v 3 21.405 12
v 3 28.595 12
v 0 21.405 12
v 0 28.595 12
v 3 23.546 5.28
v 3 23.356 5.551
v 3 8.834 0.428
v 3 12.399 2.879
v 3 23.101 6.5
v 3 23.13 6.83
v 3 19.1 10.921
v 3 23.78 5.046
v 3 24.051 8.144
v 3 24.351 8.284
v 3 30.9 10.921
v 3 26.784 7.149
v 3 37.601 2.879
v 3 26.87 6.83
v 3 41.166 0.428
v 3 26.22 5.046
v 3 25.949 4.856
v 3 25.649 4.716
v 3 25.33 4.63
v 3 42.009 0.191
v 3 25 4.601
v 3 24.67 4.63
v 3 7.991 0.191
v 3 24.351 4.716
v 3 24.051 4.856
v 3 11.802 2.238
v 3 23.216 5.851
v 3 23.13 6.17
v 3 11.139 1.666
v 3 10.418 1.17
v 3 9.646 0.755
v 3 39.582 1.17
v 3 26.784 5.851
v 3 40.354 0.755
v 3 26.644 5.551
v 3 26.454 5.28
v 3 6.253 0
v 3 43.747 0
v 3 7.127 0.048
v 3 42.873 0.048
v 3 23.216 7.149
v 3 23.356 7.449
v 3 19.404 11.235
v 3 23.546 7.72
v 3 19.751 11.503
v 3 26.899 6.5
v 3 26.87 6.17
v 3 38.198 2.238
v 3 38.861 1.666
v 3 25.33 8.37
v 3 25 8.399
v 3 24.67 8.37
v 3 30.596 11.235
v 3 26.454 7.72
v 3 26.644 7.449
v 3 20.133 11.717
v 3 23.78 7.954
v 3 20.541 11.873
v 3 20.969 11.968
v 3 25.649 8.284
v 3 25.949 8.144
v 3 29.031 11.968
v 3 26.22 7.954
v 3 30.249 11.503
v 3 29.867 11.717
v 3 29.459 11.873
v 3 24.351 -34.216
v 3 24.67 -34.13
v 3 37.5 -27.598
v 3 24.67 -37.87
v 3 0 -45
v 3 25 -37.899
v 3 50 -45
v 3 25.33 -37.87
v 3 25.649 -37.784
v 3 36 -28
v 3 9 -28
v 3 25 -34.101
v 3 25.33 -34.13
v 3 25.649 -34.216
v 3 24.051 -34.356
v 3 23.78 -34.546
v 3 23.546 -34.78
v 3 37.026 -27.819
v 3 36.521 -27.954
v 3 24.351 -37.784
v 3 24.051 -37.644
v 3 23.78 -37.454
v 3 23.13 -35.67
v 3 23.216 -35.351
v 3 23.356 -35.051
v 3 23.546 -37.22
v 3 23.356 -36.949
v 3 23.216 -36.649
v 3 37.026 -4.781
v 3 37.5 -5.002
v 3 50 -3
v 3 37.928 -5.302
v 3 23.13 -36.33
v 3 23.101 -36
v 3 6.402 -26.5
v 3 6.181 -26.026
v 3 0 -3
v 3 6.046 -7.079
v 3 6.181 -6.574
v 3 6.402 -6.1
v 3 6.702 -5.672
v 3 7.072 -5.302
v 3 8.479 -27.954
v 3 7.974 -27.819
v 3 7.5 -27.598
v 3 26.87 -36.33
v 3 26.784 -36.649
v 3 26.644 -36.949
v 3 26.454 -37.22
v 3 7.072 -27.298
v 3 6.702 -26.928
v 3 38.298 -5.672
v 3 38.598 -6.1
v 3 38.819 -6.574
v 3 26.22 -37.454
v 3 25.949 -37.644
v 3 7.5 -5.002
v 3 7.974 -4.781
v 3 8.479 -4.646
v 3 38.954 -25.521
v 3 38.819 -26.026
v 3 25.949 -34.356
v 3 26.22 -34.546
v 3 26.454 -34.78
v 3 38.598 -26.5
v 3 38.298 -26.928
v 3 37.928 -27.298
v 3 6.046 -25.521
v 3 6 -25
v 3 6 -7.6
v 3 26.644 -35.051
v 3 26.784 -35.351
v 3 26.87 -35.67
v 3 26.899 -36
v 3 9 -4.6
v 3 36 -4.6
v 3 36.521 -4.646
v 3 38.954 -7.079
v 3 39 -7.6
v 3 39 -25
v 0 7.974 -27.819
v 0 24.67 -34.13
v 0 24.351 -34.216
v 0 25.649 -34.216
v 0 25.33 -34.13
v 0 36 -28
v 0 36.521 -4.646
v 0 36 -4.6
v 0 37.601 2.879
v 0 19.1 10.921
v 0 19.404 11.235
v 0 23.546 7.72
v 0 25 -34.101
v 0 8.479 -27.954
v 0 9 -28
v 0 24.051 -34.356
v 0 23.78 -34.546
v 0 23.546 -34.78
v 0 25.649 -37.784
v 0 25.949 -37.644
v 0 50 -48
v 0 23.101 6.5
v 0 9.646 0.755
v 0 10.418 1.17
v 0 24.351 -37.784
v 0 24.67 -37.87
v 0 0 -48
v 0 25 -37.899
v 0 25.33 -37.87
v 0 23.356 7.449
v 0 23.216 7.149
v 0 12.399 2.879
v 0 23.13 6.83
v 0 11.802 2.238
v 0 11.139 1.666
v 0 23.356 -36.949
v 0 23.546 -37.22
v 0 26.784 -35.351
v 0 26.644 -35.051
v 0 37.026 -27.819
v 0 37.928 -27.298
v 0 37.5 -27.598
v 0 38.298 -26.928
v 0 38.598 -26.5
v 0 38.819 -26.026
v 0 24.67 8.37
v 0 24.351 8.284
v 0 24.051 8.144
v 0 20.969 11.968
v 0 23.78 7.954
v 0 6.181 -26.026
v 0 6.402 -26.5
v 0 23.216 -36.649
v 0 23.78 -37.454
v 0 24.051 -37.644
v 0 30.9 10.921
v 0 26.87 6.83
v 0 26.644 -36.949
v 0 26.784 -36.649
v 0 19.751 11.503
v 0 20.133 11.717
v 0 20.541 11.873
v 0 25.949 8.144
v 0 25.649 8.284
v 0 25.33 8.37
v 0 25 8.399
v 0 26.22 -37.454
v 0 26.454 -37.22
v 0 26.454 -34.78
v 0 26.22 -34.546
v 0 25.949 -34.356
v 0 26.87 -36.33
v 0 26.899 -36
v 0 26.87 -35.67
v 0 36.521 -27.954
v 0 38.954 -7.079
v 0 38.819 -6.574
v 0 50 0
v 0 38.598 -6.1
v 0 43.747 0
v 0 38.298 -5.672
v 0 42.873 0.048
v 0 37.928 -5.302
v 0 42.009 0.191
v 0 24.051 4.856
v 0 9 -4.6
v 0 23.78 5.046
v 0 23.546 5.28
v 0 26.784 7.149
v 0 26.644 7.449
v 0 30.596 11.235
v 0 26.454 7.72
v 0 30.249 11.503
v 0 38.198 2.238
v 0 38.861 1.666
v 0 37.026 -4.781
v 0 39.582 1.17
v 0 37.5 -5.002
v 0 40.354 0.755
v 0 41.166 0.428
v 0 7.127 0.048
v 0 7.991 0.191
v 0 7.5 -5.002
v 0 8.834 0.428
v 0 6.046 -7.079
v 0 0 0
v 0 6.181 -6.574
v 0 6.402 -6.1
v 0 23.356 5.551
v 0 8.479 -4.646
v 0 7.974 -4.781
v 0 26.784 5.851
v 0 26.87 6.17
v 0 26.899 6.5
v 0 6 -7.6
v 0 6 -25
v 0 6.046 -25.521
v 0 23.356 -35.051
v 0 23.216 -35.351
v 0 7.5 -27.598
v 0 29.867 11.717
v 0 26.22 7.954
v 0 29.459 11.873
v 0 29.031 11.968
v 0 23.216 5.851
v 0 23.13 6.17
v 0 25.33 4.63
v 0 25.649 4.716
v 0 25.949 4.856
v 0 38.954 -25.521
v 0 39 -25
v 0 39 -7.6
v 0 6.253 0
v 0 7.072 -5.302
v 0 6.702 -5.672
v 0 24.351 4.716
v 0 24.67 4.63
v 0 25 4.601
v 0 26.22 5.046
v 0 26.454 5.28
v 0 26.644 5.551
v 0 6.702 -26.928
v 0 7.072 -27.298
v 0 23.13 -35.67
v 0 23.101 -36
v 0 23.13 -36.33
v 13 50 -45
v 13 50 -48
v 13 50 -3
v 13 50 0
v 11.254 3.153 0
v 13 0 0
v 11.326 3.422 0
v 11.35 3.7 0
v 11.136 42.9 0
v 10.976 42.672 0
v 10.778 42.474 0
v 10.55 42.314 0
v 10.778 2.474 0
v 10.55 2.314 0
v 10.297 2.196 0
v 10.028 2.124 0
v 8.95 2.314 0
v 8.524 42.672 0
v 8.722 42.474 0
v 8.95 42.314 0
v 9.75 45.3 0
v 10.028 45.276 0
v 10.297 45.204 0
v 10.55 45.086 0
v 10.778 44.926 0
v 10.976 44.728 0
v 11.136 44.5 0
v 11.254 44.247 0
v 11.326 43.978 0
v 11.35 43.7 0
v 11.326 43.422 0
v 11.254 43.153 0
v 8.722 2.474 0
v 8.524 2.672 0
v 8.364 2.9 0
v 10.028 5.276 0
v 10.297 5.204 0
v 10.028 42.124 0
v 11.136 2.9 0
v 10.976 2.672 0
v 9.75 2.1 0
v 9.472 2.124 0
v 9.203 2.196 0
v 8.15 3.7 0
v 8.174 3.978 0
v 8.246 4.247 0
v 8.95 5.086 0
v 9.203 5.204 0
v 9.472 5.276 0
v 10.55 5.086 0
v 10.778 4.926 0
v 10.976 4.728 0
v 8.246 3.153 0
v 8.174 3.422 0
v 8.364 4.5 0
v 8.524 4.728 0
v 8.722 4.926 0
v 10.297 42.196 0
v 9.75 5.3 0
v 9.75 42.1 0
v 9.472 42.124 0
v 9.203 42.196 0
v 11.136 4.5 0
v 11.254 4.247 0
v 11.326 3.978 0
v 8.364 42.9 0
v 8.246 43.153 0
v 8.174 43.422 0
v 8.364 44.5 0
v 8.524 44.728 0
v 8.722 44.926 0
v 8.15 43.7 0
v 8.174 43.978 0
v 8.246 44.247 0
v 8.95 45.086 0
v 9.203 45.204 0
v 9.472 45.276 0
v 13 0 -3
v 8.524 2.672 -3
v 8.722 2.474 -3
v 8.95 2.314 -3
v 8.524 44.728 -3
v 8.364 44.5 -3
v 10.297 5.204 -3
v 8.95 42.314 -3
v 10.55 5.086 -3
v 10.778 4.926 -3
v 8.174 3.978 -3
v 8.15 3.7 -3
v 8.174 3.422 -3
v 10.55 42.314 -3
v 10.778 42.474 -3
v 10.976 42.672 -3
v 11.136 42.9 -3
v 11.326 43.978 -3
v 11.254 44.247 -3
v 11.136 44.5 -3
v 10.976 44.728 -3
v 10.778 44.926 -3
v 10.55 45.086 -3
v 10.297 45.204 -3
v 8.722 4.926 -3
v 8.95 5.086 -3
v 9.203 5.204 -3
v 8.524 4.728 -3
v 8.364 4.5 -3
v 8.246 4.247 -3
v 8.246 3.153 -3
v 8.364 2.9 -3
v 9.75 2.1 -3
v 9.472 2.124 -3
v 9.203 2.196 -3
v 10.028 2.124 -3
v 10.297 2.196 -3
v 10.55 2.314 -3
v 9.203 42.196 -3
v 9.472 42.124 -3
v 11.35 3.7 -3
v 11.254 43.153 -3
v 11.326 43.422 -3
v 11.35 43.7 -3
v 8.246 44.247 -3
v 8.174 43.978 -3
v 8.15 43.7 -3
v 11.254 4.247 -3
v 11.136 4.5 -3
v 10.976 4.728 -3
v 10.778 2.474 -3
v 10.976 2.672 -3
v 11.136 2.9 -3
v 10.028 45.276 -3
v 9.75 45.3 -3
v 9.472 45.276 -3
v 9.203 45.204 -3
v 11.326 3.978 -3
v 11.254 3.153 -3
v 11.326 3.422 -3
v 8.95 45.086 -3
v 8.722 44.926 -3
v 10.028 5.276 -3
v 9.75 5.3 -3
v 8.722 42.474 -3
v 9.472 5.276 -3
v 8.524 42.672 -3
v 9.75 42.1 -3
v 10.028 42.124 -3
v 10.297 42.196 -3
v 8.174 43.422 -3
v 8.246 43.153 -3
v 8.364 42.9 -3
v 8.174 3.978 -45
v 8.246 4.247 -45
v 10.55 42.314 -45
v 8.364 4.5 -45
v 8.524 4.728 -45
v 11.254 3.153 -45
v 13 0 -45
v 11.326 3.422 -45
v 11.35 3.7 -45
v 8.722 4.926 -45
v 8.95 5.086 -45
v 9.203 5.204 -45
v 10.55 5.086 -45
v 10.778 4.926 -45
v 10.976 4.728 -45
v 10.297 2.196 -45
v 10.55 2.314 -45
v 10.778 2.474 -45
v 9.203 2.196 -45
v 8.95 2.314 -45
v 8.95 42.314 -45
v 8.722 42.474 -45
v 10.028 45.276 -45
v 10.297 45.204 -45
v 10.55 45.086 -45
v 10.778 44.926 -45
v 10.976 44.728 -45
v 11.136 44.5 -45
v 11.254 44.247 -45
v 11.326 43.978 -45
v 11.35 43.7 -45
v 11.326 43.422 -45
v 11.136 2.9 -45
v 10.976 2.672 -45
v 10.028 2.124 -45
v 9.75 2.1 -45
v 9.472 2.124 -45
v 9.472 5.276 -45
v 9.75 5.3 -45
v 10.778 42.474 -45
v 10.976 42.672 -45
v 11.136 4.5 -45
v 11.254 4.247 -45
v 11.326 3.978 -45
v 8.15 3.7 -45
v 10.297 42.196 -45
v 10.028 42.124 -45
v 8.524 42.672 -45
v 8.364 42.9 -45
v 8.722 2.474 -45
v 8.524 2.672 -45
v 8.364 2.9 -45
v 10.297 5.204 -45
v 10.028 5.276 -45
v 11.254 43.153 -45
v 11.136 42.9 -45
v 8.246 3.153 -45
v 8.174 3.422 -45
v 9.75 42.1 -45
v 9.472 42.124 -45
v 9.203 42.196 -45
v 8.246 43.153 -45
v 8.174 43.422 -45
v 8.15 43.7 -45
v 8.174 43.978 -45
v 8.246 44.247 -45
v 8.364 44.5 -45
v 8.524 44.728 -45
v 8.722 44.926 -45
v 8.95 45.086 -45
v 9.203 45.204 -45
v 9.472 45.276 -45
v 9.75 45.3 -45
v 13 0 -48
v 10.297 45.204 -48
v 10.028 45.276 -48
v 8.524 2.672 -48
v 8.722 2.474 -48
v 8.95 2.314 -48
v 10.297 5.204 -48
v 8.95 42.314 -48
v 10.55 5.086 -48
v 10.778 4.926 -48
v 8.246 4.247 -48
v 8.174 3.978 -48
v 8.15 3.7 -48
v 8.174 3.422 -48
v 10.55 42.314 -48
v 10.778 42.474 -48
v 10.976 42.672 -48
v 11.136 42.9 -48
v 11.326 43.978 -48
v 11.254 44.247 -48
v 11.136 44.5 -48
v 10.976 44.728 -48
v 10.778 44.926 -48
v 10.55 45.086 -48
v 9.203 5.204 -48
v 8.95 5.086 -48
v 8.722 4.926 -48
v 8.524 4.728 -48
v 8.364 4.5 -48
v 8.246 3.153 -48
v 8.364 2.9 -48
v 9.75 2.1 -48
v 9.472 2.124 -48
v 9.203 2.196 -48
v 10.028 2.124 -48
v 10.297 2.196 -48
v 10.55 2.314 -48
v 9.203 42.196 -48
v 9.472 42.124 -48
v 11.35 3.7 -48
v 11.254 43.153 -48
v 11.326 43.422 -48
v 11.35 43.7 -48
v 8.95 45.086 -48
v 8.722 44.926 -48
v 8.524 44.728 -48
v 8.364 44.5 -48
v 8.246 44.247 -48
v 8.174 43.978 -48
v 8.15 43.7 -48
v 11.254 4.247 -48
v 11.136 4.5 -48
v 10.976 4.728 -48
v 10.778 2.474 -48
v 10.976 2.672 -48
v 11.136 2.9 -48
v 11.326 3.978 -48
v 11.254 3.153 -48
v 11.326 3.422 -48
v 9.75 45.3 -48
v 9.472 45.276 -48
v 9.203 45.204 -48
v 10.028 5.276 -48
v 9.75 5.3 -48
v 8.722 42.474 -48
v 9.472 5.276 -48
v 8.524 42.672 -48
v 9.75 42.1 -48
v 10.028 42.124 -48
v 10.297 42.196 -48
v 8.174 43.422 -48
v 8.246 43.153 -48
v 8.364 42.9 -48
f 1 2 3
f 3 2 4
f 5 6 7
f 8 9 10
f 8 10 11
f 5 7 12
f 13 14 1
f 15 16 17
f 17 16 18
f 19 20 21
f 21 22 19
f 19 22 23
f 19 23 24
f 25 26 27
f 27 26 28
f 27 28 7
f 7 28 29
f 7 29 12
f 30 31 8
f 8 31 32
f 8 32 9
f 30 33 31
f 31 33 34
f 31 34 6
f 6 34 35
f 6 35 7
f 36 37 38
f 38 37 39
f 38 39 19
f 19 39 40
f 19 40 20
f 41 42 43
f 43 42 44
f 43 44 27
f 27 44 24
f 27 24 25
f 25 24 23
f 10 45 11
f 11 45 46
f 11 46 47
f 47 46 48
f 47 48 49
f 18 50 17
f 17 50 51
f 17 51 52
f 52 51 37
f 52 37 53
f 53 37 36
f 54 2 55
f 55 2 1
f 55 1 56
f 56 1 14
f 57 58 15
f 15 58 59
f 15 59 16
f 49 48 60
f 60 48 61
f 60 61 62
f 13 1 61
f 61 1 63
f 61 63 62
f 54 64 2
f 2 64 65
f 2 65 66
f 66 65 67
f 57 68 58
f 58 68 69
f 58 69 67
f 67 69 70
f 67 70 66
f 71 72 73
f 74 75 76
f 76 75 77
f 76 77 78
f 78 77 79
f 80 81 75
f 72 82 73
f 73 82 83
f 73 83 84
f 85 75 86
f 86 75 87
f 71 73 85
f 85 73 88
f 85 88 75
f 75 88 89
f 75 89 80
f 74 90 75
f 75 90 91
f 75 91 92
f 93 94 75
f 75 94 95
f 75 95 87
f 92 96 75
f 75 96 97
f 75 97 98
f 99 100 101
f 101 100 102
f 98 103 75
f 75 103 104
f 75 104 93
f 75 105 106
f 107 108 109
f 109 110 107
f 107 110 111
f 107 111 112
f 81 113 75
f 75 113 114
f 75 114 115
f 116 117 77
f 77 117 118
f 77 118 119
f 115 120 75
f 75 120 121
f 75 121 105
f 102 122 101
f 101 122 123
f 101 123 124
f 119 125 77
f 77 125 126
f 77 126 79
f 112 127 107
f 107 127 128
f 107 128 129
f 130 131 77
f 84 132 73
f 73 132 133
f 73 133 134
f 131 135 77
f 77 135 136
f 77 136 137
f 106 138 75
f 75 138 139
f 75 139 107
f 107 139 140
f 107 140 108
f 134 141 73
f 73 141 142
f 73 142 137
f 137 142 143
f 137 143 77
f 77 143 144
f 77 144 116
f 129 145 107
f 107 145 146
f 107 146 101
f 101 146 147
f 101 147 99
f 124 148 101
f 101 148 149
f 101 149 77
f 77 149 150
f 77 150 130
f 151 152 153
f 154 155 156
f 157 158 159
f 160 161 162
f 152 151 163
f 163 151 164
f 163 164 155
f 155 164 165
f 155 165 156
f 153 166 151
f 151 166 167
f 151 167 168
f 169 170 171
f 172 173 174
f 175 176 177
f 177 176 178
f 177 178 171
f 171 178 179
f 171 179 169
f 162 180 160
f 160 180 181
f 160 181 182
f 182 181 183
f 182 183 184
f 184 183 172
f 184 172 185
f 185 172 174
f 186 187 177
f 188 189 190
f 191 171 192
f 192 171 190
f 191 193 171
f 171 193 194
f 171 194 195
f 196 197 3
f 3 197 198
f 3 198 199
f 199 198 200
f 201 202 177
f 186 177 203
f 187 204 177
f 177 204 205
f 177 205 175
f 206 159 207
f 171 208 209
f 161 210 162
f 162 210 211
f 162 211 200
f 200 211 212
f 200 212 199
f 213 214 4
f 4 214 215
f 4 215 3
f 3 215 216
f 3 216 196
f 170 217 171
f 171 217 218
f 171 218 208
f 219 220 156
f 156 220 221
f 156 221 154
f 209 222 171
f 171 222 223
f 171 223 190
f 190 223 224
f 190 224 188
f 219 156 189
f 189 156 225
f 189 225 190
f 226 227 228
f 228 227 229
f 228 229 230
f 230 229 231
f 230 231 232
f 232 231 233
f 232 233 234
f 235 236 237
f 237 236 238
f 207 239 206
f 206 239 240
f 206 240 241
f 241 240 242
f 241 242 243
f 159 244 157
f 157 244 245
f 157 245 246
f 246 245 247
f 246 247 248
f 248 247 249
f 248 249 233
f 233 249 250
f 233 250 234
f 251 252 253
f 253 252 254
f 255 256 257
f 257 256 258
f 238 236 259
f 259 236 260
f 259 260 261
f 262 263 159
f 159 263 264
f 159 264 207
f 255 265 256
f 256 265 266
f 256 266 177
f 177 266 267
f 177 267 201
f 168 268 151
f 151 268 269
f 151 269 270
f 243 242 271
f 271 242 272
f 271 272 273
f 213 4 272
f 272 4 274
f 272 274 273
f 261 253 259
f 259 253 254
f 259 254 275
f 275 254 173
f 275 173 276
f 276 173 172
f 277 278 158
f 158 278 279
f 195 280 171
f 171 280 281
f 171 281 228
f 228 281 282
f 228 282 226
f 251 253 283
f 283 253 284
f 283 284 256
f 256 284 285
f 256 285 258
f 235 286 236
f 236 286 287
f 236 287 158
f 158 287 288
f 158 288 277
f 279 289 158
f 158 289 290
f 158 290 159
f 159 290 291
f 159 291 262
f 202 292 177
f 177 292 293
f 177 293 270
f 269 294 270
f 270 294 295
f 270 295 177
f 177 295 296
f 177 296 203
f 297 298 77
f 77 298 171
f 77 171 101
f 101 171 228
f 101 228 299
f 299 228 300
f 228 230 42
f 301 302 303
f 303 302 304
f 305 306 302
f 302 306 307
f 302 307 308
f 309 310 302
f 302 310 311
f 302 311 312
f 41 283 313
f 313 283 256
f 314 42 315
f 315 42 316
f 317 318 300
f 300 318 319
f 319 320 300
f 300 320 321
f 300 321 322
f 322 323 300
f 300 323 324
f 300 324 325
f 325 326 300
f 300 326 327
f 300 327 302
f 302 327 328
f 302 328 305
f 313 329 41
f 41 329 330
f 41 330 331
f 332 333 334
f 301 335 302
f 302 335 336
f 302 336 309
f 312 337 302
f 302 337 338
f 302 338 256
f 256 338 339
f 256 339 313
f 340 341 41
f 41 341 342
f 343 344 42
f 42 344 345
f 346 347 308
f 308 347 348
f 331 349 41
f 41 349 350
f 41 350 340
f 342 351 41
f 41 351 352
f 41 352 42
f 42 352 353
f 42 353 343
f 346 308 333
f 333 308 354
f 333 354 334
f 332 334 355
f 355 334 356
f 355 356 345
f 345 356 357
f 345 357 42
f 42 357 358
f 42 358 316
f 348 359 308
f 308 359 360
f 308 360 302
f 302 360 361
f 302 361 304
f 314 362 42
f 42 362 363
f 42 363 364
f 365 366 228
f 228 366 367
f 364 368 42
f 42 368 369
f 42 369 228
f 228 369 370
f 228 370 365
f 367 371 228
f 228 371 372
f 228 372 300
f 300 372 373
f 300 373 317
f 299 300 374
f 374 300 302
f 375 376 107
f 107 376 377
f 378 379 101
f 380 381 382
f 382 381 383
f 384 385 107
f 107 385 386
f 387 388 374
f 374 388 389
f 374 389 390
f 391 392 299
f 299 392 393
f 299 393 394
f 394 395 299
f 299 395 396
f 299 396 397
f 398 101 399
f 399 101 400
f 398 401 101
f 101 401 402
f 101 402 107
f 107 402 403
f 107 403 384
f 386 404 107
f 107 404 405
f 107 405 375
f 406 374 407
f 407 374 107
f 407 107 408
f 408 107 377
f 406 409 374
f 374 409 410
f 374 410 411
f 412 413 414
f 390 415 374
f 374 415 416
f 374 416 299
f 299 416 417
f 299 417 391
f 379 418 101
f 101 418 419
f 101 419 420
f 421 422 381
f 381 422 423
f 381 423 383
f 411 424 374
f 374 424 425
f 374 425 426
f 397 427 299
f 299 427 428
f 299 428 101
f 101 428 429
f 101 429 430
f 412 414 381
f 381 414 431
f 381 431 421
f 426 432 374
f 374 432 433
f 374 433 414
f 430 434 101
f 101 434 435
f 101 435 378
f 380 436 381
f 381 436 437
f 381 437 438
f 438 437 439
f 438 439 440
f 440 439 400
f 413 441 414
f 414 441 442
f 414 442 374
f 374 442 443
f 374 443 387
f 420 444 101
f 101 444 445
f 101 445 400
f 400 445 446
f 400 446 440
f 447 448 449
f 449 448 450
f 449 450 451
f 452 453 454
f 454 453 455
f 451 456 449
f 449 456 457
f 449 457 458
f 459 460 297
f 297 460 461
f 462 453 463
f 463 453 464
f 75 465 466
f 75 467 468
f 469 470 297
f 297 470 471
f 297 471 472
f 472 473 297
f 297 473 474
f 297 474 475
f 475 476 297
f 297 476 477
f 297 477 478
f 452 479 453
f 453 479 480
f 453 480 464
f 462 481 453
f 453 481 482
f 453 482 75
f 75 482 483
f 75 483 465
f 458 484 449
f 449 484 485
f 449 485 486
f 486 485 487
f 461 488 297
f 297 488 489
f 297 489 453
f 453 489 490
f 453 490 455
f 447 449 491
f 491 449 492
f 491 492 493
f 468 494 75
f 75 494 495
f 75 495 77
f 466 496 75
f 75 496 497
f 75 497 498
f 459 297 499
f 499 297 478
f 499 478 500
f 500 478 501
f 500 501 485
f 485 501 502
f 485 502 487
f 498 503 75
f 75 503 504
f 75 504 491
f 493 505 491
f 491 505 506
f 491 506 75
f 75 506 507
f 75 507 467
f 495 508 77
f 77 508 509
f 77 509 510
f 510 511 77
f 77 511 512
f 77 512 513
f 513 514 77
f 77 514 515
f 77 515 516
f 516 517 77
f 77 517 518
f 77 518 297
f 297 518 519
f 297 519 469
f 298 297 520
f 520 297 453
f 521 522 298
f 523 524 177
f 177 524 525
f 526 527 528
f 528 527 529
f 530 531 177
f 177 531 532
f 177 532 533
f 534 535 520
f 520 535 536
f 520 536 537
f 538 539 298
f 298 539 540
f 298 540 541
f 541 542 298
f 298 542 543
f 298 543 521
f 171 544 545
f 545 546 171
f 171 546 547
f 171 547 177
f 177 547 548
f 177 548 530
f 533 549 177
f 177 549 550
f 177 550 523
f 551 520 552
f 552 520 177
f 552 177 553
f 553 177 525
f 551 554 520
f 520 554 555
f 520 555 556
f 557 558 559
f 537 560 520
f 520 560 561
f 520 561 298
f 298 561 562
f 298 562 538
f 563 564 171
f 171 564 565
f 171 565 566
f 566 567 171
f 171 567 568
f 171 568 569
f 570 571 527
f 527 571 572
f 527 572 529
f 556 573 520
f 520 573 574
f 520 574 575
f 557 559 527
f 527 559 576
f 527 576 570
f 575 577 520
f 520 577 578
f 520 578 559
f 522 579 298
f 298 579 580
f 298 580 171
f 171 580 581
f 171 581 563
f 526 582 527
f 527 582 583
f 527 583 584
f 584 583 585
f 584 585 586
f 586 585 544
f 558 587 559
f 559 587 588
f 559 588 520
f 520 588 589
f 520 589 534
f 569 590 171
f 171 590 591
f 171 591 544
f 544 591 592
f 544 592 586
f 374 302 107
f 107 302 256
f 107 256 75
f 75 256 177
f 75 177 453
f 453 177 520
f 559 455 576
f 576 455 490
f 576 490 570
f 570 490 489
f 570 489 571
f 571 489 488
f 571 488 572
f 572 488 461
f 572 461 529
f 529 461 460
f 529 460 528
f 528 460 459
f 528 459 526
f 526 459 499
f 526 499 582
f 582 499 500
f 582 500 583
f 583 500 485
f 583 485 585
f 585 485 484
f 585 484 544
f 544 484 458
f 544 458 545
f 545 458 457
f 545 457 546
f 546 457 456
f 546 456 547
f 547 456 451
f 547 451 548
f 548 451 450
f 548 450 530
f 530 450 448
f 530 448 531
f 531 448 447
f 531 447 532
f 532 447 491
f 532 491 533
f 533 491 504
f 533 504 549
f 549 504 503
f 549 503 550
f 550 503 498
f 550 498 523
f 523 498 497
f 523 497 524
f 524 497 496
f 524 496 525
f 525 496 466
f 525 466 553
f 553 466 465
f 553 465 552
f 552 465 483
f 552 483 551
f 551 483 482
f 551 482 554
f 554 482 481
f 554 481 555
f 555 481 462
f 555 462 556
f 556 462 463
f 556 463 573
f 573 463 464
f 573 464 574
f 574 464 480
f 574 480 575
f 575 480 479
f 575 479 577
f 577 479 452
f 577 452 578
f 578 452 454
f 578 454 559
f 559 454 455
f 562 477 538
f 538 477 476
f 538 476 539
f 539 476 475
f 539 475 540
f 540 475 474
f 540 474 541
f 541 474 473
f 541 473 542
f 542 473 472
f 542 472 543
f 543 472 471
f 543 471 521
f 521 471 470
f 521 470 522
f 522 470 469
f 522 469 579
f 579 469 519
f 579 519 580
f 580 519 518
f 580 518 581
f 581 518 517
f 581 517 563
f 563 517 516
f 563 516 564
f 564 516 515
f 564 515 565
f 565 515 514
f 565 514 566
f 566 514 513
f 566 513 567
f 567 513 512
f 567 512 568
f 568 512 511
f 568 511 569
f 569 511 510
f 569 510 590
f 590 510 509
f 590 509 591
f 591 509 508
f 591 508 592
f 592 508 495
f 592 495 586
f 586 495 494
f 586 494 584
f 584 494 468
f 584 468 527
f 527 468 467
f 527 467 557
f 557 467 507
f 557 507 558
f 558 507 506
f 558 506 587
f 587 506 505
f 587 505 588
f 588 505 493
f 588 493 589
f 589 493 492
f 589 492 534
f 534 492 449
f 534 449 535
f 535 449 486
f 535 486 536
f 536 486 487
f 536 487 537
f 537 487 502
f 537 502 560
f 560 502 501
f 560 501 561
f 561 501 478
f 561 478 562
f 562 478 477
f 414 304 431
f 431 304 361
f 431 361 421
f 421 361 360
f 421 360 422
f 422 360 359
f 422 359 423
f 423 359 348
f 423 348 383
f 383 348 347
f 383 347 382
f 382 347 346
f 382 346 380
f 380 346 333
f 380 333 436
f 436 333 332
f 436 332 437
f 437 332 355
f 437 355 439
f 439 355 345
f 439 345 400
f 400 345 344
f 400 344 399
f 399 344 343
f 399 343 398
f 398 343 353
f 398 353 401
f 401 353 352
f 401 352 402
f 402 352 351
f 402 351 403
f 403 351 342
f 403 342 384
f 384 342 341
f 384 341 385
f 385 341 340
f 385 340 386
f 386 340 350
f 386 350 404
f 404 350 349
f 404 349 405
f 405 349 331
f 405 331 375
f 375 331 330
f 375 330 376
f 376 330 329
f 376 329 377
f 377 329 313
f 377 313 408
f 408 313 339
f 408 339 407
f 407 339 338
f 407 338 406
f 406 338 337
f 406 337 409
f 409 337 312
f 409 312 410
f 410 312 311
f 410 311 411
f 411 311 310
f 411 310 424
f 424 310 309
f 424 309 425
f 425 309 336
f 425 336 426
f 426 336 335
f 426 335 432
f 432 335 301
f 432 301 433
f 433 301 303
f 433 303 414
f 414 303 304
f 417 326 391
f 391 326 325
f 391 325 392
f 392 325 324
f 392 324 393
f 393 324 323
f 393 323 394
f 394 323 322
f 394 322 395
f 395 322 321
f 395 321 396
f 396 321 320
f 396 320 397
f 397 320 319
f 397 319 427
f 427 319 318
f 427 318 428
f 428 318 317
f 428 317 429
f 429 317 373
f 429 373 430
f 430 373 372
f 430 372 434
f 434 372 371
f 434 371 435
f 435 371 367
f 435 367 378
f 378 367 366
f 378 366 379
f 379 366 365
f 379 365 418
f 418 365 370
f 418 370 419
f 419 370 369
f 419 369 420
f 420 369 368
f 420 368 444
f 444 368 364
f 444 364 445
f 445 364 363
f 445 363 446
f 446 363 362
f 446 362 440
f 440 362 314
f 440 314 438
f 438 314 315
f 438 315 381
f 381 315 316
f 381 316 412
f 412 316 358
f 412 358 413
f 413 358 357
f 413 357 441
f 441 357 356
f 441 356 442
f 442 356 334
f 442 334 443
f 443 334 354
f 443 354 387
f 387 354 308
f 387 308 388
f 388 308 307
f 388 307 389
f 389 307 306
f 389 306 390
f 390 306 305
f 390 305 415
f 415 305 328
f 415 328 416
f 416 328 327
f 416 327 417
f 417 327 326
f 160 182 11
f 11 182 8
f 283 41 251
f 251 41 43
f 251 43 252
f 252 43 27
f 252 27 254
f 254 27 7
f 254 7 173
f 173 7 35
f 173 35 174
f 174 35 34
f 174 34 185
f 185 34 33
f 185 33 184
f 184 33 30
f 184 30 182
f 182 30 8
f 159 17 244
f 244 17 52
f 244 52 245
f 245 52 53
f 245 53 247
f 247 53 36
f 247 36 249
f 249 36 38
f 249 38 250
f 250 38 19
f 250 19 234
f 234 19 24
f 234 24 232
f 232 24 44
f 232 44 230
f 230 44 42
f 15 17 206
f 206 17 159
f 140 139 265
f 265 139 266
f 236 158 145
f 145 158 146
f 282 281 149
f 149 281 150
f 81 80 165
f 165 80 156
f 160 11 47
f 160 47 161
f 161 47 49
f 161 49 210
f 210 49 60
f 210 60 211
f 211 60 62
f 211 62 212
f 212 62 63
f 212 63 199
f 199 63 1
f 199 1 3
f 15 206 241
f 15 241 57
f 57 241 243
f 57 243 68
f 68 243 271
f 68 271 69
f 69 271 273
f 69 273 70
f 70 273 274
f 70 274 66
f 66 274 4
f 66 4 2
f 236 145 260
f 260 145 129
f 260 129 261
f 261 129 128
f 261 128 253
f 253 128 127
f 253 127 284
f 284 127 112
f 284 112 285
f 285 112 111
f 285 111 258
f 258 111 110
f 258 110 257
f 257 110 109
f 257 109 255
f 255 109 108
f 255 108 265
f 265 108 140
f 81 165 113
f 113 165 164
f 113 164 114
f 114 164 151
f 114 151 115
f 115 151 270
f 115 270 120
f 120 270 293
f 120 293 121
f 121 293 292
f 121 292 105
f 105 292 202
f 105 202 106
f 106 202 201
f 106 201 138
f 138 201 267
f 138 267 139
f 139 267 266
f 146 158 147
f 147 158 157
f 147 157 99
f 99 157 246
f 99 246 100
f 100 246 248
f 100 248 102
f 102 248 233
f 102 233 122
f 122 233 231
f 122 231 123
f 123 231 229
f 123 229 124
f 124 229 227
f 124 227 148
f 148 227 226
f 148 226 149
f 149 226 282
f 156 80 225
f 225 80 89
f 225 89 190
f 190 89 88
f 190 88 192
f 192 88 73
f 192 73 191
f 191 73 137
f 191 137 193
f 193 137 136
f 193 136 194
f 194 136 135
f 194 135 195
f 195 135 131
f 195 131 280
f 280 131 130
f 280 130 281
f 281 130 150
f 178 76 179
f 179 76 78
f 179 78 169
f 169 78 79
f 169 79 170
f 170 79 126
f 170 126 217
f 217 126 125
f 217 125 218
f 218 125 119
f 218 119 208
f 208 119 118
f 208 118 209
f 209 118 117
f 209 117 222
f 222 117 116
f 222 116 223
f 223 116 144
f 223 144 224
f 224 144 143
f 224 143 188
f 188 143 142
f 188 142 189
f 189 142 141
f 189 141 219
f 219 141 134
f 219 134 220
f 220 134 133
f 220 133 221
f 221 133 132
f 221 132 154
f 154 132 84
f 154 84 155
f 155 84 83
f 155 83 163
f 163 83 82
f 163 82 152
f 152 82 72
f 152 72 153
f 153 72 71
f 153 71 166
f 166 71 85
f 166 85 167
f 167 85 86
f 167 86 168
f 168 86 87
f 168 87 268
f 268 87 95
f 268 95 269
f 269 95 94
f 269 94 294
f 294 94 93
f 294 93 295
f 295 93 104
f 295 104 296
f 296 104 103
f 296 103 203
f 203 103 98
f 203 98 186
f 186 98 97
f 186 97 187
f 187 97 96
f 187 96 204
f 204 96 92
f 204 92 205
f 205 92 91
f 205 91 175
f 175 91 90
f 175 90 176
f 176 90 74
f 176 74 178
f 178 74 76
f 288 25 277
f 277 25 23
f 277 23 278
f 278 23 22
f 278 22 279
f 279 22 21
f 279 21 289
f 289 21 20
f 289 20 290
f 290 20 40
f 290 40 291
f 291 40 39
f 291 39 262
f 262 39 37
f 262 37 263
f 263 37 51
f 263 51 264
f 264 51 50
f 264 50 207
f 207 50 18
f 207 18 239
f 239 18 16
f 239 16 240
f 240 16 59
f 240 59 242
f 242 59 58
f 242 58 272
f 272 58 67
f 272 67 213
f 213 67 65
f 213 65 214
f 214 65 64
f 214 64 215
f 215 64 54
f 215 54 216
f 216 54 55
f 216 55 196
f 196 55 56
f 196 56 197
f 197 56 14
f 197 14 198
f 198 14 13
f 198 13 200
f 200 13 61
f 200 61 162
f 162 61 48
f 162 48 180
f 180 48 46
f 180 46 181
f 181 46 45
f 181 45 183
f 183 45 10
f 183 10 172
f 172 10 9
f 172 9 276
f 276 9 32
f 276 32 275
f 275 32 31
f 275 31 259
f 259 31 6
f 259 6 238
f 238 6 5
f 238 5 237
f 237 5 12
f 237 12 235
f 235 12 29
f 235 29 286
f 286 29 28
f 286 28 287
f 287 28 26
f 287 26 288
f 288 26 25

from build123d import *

# Parameters (mm, degrees)
BOSS_EXTRUDE1_DEPTH   = 50
SKETCH3_R             = 1.6
CUT_EXTRUDE1_DEPTH    = 49
SKETCH4_W             = 23.4
SKETCH4_H             = 33
CUT_EXTRUDE2_DEPTH    = 4
FILLET1_R             = 3
FILLET2_R             = 3
F_6_CLEARANCE_HOLE1_D = 3.7973


with BuildPart() as part:
    # Sketch1 → Boss-Extrude1 (new body)
    with BuildSketch(Plane(origin=(0, 0, 0), x_dir=(1, 0, 0), z_dir=(0, 1, 0))):
        Polygon((0, 0), (0, 48), (3, 48), (13, 48), (13, 45), (3, 45), (3, 3), (13, 3), (13, 0), (3, 0), (3, -12), (0, -12), align=None)
    extrude(amount=BOSS_EXTRUDE1_DEPTH)

    # Sketch3 → Cut-Extrude1 (cut, through all)
    with BuildSketch(Plane.XY):
        with Locations((9.75, 43.7)):
            Circle(SKETCH3_R)
        with Locations((9.75, 3.7)):
            Circle(SKETCH3_R)
    extrude(amount=-CUT_EXTRUDE1_DEPTH, mode=Mode.SUBTRACT)

    # Sketch4 → Cut-Extrude2 (cut, through all)
    with BuildSketch(Plane(origin=(3, 0, 0), x_dir=(0, 0, -1), z_dir=(1, 0, 0))):
        with BuildLine():
            Line((0, 50), (-12, 50))
            Line((-12, 50), (-12, 30))
            Line((-12, 30), (-2.878524803, 37.601229331))
            ThreePointArc((-2.878524803, 37.601229331), (-0.75528463, 40.353756398), (0, 43.746999568))
            Line((0, 43.746999568), (0, 50))
        make_face()
        with BuildLine():
            Line((0, 0), (0, 6.253000432))
            ThreePointArc((0, 6.253000432), (-0.75528463, 9.646243602), (-2.878524803, 12.398770669))
            Line((-2.878524803, 12.398770669), (-12, 20))
            Line((-12, 20), (-12, 0))
            Line((-12, 0), (0, 0))
        make_face()
        with Locations((16.3, 22.5)):
            Rectangle(SKETCH4_W, SKETCH4_H)
    extrude(amount=-CUT_EXTRUDE2_DEPTH, mode=Mode.SUBTRACT)

    # Fillet1
    fillet1_edges = [part.edges().sort_by_distance(p)[0] for p in [
        (1.5, 20, 12),
        (1.5, 30, 12),
    ]]
    fillet(fillet1_edges, radius=FILLET1_R)

    # Fillet2
    fillet2_edges = [part.edges().sort_by_distance(p)[0] for p in [
        (1.5, 6, -28),
        (1.5, 6, -4.6),
        (1.5, 39, -4.6),
        (1.5, 39, -28),
    ]]
    fillet(fillet2_edges, radius=FILLET2_R)

    # #6 Clearance Hole1 (through all)
    with Locations(Plane(origin=(3, 0, 0), x_dir=(0, 0, -1), z_dir=(1, 0, 0))):
        with Locations((-6.5, 25), (36, 25)):
            Hole(F_6_CLEARANCE_HOLE1_D / 2)


solid = part.part
